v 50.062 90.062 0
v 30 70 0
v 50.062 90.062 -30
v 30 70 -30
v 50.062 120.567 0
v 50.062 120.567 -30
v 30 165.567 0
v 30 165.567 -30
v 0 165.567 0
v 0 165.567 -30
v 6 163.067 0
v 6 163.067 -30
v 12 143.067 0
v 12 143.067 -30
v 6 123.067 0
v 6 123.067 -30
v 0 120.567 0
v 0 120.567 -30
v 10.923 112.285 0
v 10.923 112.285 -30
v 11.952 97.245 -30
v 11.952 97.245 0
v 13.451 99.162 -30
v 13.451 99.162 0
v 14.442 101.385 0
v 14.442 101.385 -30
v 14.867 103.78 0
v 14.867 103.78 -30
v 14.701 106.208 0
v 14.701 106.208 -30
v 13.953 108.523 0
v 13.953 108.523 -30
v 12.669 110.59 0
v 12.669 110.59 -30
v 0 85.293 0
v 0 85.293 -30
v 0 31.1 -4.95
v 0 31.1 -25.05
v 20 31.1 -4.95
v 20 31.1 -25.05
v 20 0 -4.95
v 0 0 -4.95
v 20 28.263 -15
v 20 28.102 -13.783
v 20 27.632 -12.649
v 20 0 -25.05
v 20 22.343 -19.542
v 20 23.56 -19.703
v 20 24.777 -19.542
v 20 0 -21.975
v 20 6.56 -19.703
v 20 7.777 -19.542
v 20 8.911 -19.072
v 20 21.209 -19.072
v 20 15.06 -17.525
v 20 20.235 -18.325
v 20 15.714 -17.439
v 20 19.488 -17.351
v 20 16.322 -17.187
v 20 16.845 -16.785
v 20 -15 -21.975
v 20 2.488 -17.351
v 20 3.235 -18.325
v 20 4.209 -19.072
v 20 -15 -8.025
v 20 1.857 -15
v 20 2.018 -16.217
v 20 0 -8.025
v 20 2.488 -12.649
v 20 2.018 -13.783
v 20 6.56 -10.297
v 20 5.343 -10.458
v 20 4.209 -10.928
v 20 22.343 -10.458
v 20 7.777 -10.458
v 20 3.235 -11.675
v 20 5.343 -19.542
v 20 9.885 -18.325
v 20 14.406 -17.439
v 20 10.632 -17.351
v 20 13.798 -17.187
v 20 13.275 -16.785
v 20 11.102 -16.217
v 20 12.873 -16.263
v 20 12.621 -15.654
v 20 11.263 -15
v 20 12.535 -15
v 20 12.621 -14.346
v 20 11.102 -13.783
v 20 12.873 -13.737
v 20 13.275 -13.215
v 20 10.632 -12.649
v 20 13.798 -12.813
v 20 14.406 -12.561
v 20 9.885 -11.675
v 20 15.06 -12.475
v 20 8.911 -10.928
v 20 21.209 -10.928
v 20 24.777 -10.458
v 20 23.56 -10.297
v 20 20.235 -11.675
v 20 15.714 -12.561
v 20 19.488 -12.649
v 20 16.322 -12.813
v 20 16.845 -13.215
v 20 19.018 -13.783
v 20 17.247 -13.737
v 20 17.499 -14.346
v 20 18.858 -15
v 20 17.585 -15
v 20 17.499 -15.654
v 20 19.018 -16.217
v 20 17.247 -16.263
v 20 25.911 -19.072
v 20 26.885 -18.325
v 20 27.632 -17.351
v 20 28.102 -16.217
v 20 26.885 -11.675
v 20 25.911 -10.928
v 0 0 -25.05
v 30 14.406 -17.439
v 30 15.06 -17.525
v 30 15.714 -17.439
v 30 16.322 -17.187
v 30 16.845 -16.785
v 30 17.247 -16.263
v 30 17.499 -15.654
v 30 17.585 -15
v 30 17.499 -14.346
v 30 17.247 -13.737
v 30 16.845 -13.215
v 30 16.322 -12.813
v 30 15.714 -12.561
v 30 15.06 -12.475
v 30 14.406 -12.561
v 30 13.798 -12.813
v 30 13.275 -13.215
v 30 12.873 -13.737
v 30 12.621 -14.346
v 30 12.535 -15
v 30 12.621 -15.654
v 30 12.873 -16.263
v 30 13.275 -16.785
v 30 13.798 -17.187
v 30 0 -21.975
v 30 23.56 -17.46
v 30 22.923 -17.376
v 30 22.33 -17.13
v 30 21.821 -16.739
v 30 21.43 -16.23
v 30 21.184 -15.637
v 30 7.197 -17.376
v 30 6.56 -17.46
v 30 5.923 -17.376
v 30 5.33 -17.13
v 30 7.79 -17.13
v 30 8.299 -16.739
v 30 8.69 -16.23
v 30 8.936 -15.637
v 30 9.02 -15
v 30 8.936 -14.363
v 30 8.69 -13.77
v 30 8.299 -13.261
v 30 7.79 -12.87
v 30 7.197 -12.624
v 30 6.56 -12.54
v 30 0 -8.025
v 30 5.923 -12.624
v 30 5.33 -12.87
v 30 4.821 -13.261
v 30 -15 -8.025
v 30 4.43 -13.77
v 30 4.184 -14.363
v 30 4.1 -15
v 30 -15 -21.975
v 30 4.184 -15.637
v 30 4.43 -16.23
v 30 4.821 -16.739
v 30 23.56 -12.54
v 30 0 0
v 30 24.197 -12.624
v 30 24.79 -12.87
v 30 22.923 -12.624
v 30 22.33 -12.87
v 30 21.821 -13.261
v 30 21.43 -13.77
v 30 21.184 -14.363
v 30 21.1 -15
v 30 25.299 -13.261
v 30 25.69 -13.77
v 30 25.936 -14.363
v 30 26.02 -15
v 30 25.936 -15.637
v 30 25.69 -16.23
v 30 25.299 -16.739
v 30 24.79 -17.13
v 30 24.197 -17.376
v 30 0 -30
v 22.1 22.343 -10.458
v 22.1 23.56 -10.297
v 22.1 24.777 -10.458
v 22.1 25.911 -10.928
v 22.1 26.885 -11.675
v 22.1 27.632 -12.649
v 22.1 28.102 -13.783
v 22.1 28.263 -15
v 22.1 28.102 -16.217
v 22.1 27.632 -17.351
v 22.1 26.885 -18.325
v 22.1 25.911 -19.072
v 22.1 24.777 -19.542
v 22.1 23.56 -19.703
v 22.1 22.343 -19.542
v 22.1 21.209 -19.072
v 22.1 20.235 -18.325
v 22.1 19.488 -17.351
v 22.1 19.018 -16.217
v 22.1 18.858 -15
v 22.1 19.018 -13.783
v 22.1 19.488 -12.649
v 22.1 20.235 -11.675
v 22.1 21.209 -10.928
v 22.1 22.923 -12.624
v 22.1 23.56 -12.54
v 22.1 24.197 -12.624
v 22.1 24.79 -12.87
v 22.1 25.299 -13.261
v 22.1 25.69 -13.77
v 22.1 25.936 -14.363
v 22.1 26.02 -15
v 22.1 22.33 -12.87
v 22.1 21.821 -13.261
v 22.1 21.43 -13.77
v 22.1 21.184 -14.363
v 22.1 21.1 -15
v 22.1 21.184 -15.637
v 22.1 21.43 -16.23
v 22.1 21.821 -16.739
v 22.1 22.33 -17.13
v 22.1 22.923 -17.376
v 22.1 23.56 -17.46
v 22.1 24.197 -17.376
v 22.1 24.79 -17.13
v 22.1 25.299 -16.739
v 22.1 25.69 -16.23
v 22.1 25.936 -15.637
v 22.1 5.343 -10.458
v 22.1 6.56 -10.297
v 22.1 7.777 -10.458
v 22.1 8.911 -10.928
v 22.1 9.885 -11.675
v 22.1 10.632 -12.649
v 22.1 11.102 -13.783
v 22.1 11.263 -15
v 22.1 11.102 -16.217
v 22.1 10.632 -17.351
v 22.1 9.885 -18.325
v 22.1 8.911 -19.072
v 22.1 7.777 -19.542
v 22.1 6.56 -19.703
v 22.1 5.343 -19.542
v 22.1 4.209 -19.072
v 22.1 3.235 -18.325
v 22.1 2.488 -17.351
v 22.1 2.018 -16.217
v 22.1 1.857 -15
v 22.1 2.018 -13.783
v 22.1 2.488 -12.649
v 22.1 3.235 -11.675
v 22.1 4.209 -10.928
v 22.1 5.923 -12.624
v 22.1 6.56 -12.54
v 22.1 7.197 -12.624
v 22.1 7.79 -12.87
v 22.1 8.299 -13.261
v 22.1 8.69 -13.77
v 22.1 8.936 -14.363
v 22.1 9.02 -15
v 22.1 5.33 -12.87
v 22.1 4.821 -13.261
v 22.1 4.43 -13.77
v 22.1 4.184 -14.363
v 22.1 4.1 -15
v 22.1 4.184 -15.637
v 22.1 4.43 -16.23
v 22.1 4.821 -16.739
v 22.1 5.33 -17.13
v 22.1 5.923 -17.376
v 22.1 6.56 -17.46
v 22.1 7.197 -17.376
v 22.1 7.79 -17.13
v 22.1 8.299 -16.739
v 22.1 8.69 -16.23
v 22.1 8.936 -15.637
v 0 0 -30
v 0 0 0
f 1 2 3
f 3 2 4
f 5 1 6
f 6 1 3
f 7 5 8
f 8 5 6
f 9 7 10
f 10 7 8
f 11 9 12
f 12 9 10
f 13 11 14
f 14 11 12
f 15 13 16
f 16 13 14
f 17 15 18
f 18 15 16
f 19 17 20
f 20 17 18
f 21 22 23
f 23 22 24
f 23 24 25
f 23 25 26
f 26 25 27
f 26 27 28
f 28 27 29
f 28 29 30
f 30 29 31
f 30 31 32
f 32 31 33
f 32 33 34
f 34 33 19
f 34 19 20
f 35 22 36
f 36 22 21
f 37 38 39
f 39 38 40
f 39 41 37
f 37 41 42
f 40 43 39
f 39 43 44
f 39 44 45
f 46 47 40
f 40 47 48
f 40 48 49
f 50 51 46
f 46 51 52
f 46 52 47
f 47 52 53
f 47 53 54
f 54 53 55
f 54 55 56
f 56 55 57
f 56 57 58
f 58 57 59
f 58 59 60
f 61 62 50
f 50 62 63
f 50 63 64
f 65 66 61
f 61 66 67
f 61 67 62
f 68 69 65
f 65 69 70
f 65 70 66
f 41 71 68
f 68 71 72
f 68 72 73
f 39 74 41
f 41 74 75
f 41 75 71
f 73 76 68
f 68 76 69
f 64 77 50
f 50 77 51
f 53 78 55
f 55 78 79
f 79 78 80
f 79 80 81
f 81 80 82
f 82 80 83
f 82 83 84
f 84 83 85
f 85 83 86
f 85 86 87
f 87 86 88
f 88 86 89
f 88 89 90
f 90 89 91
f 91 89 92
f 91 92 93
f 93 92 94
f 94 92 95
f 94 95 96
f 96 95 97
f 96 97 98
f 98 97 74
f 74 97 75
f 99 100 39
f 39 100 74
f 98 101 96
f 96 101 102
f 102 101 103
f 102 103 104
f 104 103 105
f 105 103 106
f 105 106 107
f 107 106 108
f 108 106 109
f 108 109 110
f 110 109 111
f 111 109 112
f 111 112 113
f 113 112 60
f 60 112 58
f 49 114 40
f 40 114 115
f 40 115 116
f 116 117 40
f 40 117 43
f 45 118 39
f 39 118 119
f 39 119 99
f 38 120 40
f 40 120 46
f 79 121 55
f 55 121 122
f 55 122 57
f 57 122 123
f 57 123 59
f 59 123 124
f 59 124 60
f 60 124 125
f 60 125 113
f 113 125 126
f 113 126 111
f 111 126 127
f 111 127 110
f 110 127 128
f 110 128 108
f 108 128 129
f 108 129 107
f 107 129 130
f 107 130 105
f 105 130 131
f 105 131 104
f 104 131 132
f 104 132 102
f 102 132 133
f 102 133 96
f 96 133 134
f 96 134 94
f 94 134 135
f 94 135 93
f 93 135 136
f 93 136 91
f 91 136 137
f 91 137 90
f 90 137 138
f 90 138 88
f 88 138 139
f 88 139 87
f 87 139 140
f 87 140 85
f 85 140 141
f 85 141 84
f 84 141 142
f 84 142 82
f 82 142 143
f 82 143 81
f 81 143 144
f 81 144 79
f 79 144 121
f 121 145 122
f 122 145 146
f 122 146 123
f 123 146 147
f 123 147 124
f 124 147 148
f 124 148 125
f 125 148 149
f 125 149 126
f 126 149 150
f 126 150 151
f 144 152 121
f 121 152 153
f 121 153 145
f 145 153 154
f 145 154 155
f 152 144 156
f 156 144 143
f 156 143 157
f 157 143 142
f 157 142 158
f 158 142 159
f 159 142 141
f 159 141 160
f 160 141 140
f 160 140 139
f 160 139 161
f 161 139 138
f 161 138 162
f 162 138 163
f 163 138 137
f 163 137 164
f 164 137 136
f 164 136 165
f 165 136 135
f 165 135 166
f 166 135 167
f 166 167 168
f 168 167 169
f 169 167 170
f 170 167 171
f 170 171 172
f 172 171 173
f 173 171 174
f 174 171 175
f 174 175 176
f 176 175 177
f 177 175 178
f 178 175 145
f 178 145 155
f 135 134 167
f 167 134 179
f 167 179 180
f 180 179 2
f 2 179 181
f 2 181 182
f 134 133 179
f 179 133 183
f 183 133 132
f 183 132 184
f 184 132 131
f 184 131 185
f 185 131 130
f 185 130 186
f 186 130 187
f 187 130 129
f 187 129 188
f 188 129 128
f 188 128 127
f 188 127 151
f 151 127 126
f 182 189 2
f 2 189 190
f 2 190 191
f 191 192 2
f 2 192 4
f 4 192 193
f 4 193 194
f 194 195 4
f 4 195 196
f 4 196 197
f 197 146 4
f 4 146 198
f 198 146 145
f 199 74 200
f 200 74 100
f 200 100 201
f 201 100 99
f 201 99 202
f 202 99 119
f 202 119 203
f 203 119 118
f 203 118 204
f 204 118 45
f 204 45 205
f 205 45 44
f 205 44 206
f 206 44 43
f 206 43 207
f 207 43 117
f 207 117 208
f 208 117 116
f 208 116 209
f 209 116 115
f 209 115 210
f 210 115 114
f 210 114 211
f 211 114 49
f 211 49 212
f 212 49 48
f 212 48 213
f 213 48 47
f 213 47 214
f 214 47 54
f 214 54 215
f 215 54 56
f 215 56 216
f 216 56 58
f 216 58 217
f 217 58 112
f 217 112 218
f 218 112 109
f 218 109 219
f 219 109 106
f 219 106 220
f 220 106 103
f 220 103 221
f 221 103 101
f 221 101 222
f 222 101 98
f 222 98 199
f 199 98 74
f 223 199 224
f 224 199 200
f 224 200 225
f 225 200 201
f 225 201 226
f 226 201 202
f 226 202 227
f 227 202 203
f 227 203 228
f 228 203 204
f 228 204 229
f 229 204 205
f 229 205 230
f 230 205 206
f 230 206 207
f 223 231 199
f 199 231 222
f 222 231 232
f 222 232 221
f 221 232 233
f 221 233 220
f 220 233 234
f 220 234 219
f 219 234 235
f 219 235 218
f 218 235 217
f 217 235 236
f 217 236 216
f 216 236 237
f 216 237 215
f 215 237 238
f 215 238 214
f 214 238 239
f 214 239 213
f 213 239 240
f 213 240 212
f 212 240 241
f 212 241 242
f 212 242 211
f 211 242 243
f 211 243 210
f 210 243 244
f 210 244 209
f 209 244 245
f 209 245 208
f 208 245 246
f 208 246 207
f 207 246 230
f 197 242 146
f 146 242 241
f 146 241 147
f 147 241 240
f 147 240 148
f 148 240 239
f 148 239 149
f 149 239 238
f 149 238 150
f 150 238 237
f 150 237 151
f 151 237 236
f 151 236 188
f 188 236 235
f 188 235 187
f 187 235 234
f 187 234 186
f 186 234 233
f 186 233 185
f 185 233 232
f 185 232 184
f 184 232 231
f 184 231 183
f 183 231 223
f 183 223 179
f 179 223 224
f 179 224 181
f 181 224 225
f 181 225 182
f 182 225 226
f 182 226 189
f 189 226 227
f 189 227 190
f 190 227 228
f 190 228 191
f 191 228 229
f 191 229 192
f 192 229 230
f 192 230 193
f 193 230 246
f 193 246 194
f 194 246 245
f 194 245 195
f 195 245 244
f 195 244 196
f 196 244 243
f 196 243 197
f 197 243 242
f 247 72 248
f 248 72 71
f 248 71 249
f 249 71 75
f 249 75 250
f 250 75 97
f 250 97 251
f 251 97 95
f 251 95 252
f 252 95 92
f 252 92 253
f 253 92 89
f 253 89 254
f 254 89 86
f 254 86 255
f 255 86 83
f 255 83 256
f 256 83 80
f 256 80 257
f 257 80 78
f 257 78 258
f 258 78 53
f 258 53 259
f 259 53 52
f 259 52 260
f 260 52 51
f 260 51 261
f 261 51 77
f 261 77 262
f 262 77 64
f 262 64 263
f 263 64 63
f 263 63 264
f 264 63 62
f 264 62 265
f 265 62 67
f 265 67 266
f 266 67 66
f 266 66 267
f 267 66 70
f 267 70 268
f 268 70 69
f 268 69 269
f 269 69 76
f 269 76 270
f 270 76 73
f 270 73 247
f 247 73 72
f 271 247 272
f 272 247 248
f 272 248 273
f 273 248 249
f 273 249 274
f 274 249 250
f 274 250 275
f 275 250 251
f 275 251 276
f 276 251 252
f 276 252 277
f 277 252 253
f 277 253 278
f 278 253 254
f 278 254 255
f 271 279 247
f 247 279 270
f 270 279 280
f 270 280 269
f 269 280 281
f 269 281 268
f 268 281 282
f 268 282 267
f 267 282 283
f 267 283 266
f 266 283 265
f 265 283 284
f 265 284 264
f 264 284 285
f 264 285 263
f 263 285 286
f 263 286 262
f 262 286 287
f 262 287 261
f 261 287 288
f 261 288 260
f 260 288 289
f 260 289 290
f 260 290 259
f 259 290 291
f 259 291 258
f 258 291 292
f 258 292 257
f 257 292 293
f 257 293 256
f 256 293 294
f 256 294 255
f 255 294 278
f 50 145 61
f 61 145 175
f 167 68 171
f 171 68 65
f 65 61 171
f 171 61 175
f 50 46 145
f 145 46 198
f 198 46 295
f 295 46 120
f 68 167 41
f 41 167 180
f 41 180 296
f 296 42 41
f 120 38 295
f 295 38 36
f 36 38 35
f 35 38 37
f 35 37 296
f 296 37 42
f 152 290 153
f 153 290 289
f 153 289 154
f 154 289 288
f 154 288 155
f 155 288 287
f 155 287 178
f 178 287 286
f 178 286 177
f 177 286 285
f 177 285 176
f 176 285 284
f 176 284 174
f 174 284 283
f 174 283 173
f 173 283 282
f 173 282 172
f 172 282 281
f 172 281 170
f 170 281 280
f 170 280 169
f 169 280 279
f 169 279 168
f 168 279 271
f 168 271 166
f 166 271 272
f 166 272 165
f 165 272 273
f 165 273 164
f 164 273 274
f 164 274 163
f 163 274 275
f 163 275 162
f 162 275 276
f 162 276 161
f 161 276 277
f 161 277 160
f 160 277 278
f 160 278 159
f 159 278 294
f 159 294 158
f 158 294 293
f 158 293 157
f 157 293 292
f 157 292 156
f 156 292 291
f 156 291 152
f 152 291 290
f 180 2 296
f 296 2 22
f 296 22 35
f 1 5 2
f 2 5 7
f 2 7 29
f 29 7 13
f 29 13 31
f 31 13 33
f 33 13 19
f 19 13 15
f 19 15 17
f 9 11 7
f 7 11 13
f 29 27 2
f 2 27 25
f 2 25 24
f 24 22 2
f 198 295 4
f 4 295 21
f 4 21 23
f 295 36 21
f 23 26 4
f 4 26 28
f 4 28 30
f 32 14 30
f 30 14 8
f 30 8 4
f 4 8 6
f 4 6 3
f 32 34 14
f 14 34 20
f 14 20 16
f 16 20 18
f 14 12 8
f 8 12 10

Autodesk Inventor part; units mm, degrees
ref_plane "YZ Plane" through (0, 0, 0) normal (1, 0, 0) x (0, 1, 0)
ref_plane "XZ Plane" through (0, 0, 0) normal (0, 1, 0) x (-1, 0, 0)
ref_plane "XY Plane" through (0, 0, 0) normal (0, 0, 1) x (1, 0, 0)
sketch "Sketch1" plane through (0, 0, 0) normal (0, 0, 1) x (1, 0, 0)
  line L0 (0, 0) -> (25, 0)
  line L1 (25, 0) -> (25, 40)
  line L2 (25, 40) -> (0, 40)
  line L3 (0, 40) -> (0, 0)
  dimension "d1" = 25
  dimension "d2" = 40
  dimension "d3" = 25
extrude "Extrusion1" add sketch "Sketch1" against normal blind 30
sketch "Sketch2" plane through (25, 0, 0) normal (1, 0, 0) x (0, 0, -1)
  line L0 (0, 0) -> (30, 0) projected
  circle A0 centre (15, 6.56) radius 2.46
extrude "Extrusion2" cut sketch "Sketch2" against normal blind 30
sketch "Sketch3" plane through (0, 0, 0) normal (-1, 0, 0) x (0, 0, 1)
  line L0 (0, 0) -> (-30, 0) projected
  line L1 (-25.05, 0) -> (-4.95, 0)
  line L2 (-4.95, 0) -> (-4.95, 33.12)
  line L3 (-4.95, 33.12) -> (-25.05, 33.12)
  line L4 (-25.05, 33.12) -> (-25.05, 0)
  dimension "d11" = 20.1
extrude "Extrusion3" cut sketch "Sketch3" against normal blind 20
sketch "Sketch4" plane through (0, 0, 0) normal (0, -1, 0) x (1, 0, 0)
  line L0 (20, -4.95) -> (20, -25.05) projected
  line L1 (20, -15) -> (25, -15)
  line L2 (25, 0) -> (25, -30) projected
  line L3 (20, -8.025) -> (25, -8.025)
  line L4 (25, -8.025) -> (25, -21.975)
  line L5 (25, -21.975) -> (20, -21.975)
  line L6 (20, -21.975) -> (20, -8.025)
  line L7 (20, -8.025) -> (25, -21.975) construction
  line L8 (25, -8.025) -> (20, -21.975) construction
  line L9 (25, -12.54) -> (25, -17.46) projected
  point P0 (0, 0)
  point P1 (22.5, -15)
  dimension "d14" = 13.95
extrude "Extrusion4" add sketch "Sketch4" along normal blind 15
sketch "Sketch5" plane through (20, 0, 0) normal (-1, 0, 0) x (0, 0, 1)
  circle A0 centre (-15, 6.56) radius 2.46 projected
  circle A1 centre (-15, 6.56) radius 4.7025
  circle A2 centre (-15, 6.56) radius 2.46 projected
  circle A3 centre (-15, 6.56) radius 2.46
  point P0 (0, 0)
  dimension "d17" = 9.405
extrude "Extrusion5" cut sketch "Sketch5" against normal blind 2.1
sketch "Sketch6" plane through (25, 0, 0) normal (1, 0, 0) x (0, 0, -1)
  circle A0 centre (15, 6.56) radius 4.7025 projected
  line L0 (15, 6.56) -> (15, 23.56)
  circle A1 centre (15, 23.56) radius 2.46
  point P0 (0, 0)
  dimension "d20" = 17
  dimension "d21" = 4.92
extrude "Extrusion6" cut sketch "Sketch6" against normal blind 10 contours A1
sketch "Sketch7" plane through (20, 0, 0) normal (-1, 0, 0) x (0, 0, 1)
  circle A0 centre (-15, 23.56) radius 2.46 projected
  circle A1 centre (-15, 23.56) radius 4.7025
  point P0 (0, 0)
  dimension "d24" = 9.405
extrude "Extrusion7" cut sketch "Sketch7" against normal blind 2.1
sketch "Sketch9" plane through (25, 0, 0) normal (1, 0, 0) x (0, 0, -1)
  circle A0 centre (15, 6.56) radius 2.46 projected
  circle A1 centre (15, 6.56) radius 2.46
  circle A2 centre (15, 23.56) radius 2.46 projected
  circle A3 centre (15, 23.56) radius 2.46
  line L0 (30, 40) -> (30, 0) projected
  line L1 (30, 0) -> (30, 40)
  line L2 (30, 40) -> (0, 40)
  line L3 (0, 40) -> (0, 0)
  line L4 (0, 0) -> (8.025, 0) projected
  line L5 (21.975, 0) -> (21.975, -15)
  line L6 (21.975, -15) -> (8.025, -15)
  line L7 (8.025, -15) -> (8.025, 0)
  line L8 (0, 0) -> (8.025, 0)
  line L9 (21.975, 0) -> (30, 0)
extrude "Extrusion8" add sketch "Sketch9" along normal blind 5
sketch "Sketch10" plane through (0, 40, 0) normal (0, 1, 0) x (1, 0, 0)
  line L0 (0, 30) -> (30, 30) projected
  line L1 (30, 0) -> (0, 0) projected
  line L2 (0, 30) -> (30, 30)
  line L3 (30, 30) -> (30, 0)
  line L4 (30, 0) -> (0, 0)
  line L5 (0, 0) -> (0, 30)
extrude "Extrusion9" add sketch "Sketch10" along normal blind 30
sketch "Sketch12" plane through (30, 0, 0) normal (1, 0, 0) x (0, 0, -1)
  circle A0 centre (15, 6.56) radius 2.46 projected
  line L0 (15, 6.56) -> (15, 15.06)
  circle A1 centre (15, 15.06) radius 2.525
  point P0 (0, 0)
  dimension "d31" = 8.5
  dimension "d33" = 5.05
extrude "Extrusion10" cut sketch "Sketch12" against normal blind 30 contours A1
sketch "Sketch15" plane through (0, 0, -25.05) normal (-1, 0, 0) x (0, 0, 1)
  line L0 (0, 33.12) -> (20.1, 33.12) projected
  line L1 (20.1, 33.12) -> (20.1, 0) projected
  line L2 (0, 33.12) -> (20.1, 33.12)
  line L3 (20.1, 33.12) -> (20.1, 31.1)
  line L4 (20.1, 31.1) -> (0, 31.1)
  line L5 (0, 31.1) -> (0, 33.12)
  point P0 (25.05, 0)
  dimension "d57" = 2.02
extrude "Extrusion13" add sketch "Sketch15" against normal blind 20
sketch "Sketch17" plane through (0, 0, 0) normal (0, 0, 1) x (1, 0, 0)
  line L0 (0, 70) -> (30, 70) projected
  line L1 (30, 70) -> (50.0622, 90.0622)
  line L2 (30, 70) -> (80, 70) construction
  line L3 (11.9522, 97.2454) -> (0, 85.2932)
  line L4 (0, 70) -> (0, 85.2932)
  line L5 (0, 70) -> (0, 0) projected
  line L6 (0, 70) -> (30, 70)
  line L7 (10.923, 112.2849) -> (0, 120.567)
  line L8 (50.0622, 105.3553) -> (50.0622, 120.567)
  line L9 (50.0622, 105.3553) -> (50.0622, 90.0622)
  arc A0 (11.9522, 97.2454) -> (10.923, 112.2849) centre (4.8811, 104.3165) ccw
  line L10 (0, 165.567) -> (30, 165.567)
  line L11 (30, 165.567) -> (50.0622, 120.567)
  line L12 (6, 163.067) -> (0, 165.567)
  line L13 (6, 123.067) -> (0, 120.567)
  line L14 (6, 123.067) -> (12, 143.067)
  line L15 (12, 143.067) -> (6, 163.067)
  dimension "d61" = 45
  dimension "d62" = 32.0271
  dimension "d72" = 10
extrude "Extrusion14" add sketch "Sketch17" against normal blind 30
properties part number "rec_c_40mm_x_30mm"
